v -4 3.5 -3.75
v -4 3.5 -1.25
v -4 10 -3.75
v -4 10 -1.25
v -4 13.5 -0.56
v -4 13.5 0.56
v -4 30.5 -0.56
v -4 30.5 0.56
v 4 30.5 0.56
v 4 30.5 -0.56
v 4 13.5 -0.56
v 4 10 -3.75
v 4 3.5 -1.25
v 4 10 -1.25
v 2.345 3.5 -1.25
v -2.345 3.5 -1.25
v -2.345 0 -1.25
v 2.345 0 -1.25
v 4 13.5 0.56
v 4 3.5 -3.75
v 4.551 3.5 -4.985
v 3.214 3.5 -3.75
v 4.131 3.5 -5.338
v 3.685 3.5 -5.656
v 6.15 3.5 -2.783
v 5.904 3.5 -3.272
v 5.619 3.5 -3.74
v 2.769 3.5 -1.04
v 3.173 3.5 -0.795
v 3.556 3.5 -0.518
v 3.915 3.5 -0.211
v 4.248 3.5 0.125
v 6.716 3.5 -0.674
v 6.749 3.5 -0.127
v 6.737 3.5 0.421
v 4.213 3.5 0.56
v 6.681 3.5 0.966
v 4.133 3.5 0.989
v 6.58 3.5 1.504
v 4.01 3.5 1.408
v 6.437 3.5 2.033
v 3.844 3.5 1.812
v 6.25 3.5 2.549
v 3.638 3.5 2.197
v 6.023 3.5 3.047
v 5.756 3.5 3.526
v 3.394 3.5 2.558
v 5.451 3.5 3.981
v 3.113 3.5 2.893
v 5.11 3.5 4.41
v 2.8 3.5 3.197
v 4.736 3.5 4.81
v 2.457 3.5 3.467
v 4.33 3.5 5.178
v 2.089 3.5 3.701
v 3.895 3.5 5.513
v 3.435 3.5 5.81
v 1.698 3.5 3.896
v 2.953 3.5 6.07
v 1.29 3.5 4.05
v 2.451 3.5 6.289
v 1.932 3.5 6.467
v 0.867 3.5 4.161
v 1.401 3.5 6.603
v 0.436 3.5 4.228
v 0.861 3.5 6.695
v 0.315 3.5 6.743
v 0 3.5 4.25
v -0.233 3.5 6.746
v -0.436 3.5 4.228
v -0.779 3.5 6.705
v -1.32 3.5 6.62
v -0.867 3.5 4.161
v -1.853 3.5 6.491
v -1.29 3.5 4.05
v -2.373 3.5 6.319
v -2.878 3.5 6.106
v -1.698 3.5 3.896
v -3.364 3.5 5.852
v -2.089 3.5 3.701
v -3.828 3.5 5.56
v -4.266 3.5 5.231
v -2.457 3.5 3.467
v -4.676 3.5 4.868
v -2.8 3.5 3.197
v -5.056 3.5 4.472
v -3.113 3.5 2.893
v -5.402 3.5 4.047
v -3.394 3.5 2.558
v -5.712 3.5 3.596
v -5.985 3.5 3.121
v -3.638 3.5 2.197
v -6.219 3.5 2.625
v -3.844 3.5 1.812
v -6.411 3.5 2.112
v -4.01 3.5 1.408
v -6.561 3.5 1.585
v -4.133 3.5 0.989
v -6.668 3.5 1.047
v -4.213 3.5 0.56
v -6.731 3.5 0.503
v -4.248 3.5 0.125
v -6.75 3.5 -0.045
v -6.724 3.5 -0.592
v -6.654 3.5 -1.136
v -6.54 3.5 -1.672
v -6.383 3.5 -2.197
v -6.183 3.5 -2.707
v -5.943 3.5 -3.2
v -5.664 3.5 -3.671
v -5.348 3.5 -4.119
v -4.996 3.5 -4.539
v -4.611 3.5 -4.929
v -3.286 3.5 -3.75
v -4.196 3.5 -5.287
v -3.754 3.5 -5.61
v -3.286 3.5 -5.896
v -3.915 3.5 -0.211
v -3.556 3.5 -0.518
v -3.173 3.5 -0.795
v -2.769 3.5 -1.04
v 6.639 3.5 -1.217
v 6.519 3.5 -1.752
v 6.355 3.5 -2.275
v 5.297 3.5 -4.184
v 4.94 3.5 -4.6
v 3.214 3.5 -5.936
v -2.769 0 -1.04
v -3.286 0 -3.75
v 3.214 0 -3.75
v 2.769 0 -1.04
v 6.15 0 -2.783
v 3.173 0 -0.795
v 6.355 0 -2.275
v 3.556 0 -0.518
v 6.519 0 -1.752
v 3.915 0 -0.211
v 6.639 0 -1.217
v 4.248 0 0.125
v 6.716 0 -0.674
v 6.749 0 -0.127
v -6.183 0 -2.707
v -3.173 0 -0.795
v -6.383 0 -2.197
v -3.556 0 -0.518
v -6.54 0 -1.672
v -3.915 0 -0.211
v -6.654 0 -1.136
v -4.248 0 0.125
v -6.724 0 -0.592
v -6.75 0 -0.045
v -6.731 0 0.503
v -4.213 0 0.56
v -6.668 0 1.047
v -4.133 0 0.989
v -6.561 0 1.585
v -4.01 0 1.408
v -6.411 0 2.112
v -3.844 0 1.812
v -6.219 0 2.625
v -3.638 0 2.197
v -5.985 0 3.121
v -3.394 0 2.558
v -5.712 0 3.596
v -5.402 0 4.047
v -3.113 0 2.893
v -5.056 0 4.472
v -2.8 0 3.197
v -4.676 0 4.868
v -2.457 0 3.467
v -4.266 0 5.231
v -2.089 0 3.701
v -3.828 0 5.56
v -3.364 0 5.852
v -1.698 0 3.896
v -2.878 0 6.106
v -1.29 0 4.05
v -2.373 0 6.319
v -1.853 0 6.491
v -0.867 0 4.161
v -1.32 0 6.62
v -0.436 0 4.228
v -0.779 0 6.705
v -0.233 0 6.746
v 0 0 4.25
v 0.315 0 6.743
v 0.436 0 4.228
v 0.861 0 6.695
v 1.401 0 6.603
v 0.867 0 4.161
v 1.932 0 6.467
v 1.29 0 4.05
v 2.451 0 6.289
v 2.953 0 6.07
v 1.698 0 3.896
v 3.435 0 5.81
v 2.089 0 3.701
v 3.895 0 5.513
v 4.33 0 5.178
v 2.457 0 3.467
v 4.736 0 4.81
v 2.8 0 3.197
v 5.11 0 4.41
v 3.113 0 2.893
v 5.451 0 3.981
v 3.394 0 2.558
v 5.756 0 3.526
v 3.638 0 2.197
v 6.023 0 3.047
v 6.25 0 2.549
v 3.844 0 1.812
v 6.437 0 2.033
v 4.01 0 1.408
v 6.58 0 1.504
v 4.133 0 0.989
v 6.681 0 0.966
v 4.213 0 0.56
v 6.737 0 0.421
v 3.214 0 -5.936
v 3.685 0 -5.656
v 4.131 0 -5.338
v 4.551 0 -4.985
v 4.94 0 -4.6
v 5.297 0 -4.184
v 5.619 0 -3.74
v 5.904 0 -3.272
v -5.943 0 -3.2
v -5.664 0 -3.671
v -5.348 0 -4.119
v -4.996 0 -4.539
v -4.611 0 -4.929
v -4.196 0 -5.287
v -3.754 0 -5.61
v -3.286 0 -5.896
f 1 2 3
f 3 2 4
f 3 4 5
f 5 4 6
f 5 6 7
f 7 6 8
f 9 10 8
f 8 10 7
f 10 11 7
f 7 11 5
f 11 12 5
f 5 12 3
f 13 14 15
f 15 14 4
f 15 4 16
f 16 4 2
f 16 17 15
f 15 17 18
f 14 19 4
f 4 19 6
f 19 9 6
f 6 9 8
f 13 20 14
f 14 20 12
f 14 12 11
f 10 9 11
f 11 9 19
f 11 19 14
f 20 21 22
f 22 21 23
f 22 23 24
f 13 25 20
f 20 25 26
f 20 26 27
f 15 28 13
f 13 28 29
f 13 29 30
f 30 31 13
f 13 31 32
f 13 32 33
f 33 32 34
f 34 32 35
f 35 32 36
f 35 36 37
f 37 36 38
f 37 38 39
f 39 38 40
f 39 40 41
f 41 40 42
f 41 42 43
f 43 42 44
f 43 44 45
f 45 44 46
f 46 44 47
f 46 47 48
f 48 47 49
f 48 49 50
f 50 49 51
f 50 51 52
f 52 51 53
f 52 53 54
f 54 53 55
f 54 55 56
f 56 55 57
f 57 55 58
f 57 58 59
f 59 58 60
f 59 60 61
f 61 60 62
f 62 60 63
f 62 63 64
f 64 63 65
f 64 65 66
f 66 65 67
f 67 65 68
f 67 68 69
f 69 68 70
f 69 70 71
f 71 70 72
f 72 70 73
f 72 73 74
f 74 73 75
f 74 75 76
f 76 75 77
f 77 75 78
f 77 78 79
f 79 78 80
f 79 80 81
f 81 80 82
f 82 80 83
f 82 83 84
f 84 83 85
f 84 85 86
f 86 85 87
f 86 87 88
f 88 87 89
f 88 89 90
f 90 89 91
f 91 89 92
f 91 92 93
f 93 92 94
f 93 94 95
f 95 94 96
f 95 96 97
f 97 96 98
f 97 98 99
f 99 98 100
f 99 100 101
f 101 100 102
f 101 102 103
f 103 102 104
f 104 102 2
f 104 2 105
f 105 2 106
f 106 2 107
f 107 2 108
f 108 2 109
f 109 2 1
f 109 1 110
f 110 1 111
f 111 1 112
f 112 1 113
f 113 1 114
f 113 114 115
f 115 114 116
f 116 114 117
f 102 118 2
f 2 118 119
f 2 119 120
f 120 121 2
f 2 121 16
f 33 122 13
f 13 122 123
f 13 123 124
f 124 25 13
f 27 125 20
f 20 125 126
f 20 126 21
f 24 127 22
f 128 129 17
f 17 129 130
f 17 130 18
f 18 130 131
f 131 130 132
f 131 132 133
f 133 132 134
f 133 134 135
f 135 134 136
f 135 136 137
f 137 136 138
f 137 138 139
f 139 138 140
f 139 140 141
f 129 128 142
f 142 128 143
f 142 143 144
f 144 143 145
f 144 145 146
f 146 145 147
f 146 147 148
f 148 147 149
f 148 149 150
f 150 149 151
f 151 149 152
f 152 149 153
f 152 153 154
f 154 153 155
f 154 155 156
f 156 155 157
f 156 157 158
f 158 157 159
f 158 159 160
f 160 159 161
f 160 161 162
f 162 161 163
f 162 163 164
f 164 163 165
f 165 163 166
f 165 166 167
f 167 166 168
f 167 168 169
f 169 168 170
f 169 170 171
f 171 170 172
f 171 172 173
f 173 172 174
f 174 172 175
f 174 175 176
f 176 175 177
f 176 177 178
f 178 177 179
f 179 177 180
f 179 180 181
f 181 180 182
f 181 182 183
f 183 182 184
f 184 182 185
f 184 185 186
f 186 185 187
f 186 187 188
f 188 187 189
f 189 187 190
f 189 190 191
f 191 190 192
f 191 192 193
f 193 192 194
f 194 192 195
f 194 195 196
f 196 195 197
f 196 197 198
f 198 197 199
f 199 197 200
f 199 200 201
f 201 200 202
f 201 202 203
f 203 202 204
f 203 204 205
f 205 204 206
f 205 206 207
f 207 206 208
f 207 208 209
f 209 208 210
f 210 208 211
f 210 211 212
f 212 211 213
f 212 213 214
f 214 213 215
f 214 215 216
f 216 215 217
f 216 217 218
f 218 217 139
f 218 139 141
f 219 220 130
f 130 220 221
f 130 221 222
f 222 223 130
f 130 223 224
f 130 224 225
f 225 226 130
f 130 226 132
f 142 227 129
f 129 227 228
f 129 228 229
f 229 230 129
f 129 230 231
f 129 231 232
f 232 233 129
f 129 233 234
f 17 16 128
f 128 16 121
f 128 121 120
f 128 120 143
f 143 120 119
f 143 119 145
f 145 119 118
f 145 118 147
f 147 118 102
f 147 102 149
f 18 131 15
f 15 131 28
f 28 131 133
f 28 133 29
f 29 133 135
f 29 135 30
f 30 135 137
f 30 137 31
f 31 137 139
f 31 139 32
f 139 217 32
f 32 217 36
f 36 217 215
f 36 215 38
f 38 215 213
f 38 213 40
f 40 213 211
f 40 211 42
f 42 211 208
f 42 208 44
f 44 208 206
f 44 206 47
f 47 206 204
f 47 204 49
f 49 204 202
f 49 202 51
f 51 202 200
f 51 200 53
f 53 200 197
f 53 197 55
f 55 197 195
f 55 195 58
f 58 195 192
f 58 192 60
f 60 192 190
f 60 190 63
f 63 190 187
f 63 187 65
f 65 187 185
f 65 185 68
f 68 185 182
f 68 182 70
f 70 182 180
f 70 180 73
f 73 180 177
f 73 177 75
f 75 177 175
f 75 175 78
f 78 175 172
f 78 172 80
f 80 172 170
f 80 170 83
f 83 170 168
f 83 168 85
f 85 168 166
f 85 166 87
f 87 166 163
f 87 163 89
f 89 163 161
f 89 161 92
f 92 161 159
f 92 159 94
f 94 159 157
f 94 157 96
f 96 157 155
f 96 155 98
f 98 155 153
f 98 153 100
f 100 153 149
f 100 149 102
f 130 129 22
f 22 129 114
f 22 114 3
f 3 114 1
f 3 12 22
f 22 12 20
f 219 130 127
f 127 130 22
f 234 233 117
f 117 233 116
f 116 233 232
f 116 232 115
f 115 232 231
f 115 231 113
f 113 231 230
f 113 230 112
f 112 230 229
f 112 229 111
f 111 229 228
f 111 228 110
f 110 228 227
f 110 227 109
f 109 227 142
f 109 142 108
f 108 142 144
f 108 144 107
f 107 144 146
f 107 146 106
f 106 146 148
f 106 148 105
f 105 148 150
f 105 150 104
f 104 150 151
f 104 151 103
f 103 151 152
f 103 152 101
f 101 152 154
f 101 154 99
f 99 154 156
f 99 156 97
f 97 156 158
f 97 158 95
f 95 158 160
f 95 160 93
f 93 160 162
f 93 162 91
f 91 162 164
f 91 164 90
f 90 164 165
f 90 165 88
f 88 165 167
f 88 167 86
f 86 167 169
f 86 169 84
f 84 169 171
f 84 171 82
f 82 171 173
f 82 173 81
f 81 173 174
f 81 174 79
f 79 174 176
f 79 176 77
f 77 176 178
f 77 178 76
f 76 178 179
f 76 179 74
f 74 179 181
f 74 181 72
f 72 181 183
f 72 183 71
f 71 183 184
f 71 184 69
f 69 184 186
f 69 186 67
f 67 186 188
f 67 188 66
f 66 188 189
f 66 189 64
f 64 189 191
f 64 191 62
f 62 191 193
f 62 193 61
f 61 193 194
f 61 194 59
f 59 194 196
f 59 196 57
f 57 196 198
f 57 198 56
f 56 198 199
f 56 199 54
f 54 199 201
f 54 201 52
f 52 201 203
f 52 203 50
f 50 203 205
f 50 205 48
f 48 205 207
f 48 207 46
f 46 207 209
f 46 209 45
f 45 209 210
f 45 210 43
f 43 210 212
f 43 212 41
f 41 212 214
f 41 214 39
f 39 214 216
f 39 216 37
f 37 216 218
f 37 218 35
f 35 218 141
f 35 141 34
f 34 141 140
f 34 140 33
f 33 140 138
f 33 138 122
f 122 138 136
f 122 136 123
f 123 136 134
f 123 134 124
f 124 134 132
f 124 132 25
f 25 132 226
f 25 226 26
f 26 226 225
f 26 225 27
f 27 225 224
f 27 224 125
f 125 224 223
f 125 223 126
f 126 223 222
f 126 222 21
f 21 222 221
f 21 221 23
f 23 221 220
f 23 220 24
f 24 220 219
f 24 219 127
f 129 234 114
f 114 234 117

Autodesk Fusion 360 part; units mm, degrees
sketch "Sketch2" plane through (0, 0, 0) normal (0, 1, 0) x (1, 0, 0)
  circle A0 centre (0, 0) radius 6.75
  circle A1 centre (0, 0) radius 4.25
  line L0 (-3.2862, 6.75) -> (3.2138, 6.75)
  line L1 (3.2138, 6.75) -> (3.2138, 3.75)
  line L2 (3.2138, 3.75) -> (-3.2862, 3.75)
  line L3 (-3.2862, 3.75) -> (-3.2862, 6.75)
  circle A2 centre (0, -4) radius 5.75
  dimension "d1" = 13.5
  dimension "d2" = 8.5
  dimension "d3" = 6.5
  dimension "d4" = 3
  dimension "d5" = 11.5
extrude "Extrude1" add sketch "Sketch2" along normal blind 3.5 contours A0 A1 L1 L2 A2 | A0 A1 A2 | A0 A1 L2 L3 A2 | A1 L2 A2
sketch "Sketch4" plane through (0, 0, 0) normal (1, 0, 0) x (0, 0, -1)
  line L0 (-0.5599, 30.5) -> (0.5599, 30.5)
  line L1 (0.5599, 30.5) -> (0.5599, 13.5)
  line L2 (0.5599, 13.5) -> (-0.5599, 13.5)
  line L3 (-0.5599, 13.5) -> (-0.5599, 30.5)
  line L4 (-0.5599, 30.5) -> (0.5599, 13.5) construction
  line L5 (0.5599, 30.5) -> (-0.5599, 13.5) construction
  line L6 (5.9358, 3.5) -> (-6.75, 3.5)
  line L7 (3.75, 10) -> (1.25, 10)
  line L8 (1.25, 10) -> (1.25, 0)
  line L9 (1.25, 0) -> (3.75, 0)
  line L10 (3.75, 0) -> (3.75, 10)
  line L11 (3.75, 10) -> (0.5599, 13.5)
  line L12 (-0.5599, 13.5) -> (1.25, 10)
  point P0 (0, 22)
  dimension "d8" = 17
  dimension "d9" = 18.5
  dimension "d10" = 2.5
  dimension "d11" = 1.25
  dimension "d12" = 10
extrude "Extrude2" add sketch "Sketch4" along normal mid plane 8
